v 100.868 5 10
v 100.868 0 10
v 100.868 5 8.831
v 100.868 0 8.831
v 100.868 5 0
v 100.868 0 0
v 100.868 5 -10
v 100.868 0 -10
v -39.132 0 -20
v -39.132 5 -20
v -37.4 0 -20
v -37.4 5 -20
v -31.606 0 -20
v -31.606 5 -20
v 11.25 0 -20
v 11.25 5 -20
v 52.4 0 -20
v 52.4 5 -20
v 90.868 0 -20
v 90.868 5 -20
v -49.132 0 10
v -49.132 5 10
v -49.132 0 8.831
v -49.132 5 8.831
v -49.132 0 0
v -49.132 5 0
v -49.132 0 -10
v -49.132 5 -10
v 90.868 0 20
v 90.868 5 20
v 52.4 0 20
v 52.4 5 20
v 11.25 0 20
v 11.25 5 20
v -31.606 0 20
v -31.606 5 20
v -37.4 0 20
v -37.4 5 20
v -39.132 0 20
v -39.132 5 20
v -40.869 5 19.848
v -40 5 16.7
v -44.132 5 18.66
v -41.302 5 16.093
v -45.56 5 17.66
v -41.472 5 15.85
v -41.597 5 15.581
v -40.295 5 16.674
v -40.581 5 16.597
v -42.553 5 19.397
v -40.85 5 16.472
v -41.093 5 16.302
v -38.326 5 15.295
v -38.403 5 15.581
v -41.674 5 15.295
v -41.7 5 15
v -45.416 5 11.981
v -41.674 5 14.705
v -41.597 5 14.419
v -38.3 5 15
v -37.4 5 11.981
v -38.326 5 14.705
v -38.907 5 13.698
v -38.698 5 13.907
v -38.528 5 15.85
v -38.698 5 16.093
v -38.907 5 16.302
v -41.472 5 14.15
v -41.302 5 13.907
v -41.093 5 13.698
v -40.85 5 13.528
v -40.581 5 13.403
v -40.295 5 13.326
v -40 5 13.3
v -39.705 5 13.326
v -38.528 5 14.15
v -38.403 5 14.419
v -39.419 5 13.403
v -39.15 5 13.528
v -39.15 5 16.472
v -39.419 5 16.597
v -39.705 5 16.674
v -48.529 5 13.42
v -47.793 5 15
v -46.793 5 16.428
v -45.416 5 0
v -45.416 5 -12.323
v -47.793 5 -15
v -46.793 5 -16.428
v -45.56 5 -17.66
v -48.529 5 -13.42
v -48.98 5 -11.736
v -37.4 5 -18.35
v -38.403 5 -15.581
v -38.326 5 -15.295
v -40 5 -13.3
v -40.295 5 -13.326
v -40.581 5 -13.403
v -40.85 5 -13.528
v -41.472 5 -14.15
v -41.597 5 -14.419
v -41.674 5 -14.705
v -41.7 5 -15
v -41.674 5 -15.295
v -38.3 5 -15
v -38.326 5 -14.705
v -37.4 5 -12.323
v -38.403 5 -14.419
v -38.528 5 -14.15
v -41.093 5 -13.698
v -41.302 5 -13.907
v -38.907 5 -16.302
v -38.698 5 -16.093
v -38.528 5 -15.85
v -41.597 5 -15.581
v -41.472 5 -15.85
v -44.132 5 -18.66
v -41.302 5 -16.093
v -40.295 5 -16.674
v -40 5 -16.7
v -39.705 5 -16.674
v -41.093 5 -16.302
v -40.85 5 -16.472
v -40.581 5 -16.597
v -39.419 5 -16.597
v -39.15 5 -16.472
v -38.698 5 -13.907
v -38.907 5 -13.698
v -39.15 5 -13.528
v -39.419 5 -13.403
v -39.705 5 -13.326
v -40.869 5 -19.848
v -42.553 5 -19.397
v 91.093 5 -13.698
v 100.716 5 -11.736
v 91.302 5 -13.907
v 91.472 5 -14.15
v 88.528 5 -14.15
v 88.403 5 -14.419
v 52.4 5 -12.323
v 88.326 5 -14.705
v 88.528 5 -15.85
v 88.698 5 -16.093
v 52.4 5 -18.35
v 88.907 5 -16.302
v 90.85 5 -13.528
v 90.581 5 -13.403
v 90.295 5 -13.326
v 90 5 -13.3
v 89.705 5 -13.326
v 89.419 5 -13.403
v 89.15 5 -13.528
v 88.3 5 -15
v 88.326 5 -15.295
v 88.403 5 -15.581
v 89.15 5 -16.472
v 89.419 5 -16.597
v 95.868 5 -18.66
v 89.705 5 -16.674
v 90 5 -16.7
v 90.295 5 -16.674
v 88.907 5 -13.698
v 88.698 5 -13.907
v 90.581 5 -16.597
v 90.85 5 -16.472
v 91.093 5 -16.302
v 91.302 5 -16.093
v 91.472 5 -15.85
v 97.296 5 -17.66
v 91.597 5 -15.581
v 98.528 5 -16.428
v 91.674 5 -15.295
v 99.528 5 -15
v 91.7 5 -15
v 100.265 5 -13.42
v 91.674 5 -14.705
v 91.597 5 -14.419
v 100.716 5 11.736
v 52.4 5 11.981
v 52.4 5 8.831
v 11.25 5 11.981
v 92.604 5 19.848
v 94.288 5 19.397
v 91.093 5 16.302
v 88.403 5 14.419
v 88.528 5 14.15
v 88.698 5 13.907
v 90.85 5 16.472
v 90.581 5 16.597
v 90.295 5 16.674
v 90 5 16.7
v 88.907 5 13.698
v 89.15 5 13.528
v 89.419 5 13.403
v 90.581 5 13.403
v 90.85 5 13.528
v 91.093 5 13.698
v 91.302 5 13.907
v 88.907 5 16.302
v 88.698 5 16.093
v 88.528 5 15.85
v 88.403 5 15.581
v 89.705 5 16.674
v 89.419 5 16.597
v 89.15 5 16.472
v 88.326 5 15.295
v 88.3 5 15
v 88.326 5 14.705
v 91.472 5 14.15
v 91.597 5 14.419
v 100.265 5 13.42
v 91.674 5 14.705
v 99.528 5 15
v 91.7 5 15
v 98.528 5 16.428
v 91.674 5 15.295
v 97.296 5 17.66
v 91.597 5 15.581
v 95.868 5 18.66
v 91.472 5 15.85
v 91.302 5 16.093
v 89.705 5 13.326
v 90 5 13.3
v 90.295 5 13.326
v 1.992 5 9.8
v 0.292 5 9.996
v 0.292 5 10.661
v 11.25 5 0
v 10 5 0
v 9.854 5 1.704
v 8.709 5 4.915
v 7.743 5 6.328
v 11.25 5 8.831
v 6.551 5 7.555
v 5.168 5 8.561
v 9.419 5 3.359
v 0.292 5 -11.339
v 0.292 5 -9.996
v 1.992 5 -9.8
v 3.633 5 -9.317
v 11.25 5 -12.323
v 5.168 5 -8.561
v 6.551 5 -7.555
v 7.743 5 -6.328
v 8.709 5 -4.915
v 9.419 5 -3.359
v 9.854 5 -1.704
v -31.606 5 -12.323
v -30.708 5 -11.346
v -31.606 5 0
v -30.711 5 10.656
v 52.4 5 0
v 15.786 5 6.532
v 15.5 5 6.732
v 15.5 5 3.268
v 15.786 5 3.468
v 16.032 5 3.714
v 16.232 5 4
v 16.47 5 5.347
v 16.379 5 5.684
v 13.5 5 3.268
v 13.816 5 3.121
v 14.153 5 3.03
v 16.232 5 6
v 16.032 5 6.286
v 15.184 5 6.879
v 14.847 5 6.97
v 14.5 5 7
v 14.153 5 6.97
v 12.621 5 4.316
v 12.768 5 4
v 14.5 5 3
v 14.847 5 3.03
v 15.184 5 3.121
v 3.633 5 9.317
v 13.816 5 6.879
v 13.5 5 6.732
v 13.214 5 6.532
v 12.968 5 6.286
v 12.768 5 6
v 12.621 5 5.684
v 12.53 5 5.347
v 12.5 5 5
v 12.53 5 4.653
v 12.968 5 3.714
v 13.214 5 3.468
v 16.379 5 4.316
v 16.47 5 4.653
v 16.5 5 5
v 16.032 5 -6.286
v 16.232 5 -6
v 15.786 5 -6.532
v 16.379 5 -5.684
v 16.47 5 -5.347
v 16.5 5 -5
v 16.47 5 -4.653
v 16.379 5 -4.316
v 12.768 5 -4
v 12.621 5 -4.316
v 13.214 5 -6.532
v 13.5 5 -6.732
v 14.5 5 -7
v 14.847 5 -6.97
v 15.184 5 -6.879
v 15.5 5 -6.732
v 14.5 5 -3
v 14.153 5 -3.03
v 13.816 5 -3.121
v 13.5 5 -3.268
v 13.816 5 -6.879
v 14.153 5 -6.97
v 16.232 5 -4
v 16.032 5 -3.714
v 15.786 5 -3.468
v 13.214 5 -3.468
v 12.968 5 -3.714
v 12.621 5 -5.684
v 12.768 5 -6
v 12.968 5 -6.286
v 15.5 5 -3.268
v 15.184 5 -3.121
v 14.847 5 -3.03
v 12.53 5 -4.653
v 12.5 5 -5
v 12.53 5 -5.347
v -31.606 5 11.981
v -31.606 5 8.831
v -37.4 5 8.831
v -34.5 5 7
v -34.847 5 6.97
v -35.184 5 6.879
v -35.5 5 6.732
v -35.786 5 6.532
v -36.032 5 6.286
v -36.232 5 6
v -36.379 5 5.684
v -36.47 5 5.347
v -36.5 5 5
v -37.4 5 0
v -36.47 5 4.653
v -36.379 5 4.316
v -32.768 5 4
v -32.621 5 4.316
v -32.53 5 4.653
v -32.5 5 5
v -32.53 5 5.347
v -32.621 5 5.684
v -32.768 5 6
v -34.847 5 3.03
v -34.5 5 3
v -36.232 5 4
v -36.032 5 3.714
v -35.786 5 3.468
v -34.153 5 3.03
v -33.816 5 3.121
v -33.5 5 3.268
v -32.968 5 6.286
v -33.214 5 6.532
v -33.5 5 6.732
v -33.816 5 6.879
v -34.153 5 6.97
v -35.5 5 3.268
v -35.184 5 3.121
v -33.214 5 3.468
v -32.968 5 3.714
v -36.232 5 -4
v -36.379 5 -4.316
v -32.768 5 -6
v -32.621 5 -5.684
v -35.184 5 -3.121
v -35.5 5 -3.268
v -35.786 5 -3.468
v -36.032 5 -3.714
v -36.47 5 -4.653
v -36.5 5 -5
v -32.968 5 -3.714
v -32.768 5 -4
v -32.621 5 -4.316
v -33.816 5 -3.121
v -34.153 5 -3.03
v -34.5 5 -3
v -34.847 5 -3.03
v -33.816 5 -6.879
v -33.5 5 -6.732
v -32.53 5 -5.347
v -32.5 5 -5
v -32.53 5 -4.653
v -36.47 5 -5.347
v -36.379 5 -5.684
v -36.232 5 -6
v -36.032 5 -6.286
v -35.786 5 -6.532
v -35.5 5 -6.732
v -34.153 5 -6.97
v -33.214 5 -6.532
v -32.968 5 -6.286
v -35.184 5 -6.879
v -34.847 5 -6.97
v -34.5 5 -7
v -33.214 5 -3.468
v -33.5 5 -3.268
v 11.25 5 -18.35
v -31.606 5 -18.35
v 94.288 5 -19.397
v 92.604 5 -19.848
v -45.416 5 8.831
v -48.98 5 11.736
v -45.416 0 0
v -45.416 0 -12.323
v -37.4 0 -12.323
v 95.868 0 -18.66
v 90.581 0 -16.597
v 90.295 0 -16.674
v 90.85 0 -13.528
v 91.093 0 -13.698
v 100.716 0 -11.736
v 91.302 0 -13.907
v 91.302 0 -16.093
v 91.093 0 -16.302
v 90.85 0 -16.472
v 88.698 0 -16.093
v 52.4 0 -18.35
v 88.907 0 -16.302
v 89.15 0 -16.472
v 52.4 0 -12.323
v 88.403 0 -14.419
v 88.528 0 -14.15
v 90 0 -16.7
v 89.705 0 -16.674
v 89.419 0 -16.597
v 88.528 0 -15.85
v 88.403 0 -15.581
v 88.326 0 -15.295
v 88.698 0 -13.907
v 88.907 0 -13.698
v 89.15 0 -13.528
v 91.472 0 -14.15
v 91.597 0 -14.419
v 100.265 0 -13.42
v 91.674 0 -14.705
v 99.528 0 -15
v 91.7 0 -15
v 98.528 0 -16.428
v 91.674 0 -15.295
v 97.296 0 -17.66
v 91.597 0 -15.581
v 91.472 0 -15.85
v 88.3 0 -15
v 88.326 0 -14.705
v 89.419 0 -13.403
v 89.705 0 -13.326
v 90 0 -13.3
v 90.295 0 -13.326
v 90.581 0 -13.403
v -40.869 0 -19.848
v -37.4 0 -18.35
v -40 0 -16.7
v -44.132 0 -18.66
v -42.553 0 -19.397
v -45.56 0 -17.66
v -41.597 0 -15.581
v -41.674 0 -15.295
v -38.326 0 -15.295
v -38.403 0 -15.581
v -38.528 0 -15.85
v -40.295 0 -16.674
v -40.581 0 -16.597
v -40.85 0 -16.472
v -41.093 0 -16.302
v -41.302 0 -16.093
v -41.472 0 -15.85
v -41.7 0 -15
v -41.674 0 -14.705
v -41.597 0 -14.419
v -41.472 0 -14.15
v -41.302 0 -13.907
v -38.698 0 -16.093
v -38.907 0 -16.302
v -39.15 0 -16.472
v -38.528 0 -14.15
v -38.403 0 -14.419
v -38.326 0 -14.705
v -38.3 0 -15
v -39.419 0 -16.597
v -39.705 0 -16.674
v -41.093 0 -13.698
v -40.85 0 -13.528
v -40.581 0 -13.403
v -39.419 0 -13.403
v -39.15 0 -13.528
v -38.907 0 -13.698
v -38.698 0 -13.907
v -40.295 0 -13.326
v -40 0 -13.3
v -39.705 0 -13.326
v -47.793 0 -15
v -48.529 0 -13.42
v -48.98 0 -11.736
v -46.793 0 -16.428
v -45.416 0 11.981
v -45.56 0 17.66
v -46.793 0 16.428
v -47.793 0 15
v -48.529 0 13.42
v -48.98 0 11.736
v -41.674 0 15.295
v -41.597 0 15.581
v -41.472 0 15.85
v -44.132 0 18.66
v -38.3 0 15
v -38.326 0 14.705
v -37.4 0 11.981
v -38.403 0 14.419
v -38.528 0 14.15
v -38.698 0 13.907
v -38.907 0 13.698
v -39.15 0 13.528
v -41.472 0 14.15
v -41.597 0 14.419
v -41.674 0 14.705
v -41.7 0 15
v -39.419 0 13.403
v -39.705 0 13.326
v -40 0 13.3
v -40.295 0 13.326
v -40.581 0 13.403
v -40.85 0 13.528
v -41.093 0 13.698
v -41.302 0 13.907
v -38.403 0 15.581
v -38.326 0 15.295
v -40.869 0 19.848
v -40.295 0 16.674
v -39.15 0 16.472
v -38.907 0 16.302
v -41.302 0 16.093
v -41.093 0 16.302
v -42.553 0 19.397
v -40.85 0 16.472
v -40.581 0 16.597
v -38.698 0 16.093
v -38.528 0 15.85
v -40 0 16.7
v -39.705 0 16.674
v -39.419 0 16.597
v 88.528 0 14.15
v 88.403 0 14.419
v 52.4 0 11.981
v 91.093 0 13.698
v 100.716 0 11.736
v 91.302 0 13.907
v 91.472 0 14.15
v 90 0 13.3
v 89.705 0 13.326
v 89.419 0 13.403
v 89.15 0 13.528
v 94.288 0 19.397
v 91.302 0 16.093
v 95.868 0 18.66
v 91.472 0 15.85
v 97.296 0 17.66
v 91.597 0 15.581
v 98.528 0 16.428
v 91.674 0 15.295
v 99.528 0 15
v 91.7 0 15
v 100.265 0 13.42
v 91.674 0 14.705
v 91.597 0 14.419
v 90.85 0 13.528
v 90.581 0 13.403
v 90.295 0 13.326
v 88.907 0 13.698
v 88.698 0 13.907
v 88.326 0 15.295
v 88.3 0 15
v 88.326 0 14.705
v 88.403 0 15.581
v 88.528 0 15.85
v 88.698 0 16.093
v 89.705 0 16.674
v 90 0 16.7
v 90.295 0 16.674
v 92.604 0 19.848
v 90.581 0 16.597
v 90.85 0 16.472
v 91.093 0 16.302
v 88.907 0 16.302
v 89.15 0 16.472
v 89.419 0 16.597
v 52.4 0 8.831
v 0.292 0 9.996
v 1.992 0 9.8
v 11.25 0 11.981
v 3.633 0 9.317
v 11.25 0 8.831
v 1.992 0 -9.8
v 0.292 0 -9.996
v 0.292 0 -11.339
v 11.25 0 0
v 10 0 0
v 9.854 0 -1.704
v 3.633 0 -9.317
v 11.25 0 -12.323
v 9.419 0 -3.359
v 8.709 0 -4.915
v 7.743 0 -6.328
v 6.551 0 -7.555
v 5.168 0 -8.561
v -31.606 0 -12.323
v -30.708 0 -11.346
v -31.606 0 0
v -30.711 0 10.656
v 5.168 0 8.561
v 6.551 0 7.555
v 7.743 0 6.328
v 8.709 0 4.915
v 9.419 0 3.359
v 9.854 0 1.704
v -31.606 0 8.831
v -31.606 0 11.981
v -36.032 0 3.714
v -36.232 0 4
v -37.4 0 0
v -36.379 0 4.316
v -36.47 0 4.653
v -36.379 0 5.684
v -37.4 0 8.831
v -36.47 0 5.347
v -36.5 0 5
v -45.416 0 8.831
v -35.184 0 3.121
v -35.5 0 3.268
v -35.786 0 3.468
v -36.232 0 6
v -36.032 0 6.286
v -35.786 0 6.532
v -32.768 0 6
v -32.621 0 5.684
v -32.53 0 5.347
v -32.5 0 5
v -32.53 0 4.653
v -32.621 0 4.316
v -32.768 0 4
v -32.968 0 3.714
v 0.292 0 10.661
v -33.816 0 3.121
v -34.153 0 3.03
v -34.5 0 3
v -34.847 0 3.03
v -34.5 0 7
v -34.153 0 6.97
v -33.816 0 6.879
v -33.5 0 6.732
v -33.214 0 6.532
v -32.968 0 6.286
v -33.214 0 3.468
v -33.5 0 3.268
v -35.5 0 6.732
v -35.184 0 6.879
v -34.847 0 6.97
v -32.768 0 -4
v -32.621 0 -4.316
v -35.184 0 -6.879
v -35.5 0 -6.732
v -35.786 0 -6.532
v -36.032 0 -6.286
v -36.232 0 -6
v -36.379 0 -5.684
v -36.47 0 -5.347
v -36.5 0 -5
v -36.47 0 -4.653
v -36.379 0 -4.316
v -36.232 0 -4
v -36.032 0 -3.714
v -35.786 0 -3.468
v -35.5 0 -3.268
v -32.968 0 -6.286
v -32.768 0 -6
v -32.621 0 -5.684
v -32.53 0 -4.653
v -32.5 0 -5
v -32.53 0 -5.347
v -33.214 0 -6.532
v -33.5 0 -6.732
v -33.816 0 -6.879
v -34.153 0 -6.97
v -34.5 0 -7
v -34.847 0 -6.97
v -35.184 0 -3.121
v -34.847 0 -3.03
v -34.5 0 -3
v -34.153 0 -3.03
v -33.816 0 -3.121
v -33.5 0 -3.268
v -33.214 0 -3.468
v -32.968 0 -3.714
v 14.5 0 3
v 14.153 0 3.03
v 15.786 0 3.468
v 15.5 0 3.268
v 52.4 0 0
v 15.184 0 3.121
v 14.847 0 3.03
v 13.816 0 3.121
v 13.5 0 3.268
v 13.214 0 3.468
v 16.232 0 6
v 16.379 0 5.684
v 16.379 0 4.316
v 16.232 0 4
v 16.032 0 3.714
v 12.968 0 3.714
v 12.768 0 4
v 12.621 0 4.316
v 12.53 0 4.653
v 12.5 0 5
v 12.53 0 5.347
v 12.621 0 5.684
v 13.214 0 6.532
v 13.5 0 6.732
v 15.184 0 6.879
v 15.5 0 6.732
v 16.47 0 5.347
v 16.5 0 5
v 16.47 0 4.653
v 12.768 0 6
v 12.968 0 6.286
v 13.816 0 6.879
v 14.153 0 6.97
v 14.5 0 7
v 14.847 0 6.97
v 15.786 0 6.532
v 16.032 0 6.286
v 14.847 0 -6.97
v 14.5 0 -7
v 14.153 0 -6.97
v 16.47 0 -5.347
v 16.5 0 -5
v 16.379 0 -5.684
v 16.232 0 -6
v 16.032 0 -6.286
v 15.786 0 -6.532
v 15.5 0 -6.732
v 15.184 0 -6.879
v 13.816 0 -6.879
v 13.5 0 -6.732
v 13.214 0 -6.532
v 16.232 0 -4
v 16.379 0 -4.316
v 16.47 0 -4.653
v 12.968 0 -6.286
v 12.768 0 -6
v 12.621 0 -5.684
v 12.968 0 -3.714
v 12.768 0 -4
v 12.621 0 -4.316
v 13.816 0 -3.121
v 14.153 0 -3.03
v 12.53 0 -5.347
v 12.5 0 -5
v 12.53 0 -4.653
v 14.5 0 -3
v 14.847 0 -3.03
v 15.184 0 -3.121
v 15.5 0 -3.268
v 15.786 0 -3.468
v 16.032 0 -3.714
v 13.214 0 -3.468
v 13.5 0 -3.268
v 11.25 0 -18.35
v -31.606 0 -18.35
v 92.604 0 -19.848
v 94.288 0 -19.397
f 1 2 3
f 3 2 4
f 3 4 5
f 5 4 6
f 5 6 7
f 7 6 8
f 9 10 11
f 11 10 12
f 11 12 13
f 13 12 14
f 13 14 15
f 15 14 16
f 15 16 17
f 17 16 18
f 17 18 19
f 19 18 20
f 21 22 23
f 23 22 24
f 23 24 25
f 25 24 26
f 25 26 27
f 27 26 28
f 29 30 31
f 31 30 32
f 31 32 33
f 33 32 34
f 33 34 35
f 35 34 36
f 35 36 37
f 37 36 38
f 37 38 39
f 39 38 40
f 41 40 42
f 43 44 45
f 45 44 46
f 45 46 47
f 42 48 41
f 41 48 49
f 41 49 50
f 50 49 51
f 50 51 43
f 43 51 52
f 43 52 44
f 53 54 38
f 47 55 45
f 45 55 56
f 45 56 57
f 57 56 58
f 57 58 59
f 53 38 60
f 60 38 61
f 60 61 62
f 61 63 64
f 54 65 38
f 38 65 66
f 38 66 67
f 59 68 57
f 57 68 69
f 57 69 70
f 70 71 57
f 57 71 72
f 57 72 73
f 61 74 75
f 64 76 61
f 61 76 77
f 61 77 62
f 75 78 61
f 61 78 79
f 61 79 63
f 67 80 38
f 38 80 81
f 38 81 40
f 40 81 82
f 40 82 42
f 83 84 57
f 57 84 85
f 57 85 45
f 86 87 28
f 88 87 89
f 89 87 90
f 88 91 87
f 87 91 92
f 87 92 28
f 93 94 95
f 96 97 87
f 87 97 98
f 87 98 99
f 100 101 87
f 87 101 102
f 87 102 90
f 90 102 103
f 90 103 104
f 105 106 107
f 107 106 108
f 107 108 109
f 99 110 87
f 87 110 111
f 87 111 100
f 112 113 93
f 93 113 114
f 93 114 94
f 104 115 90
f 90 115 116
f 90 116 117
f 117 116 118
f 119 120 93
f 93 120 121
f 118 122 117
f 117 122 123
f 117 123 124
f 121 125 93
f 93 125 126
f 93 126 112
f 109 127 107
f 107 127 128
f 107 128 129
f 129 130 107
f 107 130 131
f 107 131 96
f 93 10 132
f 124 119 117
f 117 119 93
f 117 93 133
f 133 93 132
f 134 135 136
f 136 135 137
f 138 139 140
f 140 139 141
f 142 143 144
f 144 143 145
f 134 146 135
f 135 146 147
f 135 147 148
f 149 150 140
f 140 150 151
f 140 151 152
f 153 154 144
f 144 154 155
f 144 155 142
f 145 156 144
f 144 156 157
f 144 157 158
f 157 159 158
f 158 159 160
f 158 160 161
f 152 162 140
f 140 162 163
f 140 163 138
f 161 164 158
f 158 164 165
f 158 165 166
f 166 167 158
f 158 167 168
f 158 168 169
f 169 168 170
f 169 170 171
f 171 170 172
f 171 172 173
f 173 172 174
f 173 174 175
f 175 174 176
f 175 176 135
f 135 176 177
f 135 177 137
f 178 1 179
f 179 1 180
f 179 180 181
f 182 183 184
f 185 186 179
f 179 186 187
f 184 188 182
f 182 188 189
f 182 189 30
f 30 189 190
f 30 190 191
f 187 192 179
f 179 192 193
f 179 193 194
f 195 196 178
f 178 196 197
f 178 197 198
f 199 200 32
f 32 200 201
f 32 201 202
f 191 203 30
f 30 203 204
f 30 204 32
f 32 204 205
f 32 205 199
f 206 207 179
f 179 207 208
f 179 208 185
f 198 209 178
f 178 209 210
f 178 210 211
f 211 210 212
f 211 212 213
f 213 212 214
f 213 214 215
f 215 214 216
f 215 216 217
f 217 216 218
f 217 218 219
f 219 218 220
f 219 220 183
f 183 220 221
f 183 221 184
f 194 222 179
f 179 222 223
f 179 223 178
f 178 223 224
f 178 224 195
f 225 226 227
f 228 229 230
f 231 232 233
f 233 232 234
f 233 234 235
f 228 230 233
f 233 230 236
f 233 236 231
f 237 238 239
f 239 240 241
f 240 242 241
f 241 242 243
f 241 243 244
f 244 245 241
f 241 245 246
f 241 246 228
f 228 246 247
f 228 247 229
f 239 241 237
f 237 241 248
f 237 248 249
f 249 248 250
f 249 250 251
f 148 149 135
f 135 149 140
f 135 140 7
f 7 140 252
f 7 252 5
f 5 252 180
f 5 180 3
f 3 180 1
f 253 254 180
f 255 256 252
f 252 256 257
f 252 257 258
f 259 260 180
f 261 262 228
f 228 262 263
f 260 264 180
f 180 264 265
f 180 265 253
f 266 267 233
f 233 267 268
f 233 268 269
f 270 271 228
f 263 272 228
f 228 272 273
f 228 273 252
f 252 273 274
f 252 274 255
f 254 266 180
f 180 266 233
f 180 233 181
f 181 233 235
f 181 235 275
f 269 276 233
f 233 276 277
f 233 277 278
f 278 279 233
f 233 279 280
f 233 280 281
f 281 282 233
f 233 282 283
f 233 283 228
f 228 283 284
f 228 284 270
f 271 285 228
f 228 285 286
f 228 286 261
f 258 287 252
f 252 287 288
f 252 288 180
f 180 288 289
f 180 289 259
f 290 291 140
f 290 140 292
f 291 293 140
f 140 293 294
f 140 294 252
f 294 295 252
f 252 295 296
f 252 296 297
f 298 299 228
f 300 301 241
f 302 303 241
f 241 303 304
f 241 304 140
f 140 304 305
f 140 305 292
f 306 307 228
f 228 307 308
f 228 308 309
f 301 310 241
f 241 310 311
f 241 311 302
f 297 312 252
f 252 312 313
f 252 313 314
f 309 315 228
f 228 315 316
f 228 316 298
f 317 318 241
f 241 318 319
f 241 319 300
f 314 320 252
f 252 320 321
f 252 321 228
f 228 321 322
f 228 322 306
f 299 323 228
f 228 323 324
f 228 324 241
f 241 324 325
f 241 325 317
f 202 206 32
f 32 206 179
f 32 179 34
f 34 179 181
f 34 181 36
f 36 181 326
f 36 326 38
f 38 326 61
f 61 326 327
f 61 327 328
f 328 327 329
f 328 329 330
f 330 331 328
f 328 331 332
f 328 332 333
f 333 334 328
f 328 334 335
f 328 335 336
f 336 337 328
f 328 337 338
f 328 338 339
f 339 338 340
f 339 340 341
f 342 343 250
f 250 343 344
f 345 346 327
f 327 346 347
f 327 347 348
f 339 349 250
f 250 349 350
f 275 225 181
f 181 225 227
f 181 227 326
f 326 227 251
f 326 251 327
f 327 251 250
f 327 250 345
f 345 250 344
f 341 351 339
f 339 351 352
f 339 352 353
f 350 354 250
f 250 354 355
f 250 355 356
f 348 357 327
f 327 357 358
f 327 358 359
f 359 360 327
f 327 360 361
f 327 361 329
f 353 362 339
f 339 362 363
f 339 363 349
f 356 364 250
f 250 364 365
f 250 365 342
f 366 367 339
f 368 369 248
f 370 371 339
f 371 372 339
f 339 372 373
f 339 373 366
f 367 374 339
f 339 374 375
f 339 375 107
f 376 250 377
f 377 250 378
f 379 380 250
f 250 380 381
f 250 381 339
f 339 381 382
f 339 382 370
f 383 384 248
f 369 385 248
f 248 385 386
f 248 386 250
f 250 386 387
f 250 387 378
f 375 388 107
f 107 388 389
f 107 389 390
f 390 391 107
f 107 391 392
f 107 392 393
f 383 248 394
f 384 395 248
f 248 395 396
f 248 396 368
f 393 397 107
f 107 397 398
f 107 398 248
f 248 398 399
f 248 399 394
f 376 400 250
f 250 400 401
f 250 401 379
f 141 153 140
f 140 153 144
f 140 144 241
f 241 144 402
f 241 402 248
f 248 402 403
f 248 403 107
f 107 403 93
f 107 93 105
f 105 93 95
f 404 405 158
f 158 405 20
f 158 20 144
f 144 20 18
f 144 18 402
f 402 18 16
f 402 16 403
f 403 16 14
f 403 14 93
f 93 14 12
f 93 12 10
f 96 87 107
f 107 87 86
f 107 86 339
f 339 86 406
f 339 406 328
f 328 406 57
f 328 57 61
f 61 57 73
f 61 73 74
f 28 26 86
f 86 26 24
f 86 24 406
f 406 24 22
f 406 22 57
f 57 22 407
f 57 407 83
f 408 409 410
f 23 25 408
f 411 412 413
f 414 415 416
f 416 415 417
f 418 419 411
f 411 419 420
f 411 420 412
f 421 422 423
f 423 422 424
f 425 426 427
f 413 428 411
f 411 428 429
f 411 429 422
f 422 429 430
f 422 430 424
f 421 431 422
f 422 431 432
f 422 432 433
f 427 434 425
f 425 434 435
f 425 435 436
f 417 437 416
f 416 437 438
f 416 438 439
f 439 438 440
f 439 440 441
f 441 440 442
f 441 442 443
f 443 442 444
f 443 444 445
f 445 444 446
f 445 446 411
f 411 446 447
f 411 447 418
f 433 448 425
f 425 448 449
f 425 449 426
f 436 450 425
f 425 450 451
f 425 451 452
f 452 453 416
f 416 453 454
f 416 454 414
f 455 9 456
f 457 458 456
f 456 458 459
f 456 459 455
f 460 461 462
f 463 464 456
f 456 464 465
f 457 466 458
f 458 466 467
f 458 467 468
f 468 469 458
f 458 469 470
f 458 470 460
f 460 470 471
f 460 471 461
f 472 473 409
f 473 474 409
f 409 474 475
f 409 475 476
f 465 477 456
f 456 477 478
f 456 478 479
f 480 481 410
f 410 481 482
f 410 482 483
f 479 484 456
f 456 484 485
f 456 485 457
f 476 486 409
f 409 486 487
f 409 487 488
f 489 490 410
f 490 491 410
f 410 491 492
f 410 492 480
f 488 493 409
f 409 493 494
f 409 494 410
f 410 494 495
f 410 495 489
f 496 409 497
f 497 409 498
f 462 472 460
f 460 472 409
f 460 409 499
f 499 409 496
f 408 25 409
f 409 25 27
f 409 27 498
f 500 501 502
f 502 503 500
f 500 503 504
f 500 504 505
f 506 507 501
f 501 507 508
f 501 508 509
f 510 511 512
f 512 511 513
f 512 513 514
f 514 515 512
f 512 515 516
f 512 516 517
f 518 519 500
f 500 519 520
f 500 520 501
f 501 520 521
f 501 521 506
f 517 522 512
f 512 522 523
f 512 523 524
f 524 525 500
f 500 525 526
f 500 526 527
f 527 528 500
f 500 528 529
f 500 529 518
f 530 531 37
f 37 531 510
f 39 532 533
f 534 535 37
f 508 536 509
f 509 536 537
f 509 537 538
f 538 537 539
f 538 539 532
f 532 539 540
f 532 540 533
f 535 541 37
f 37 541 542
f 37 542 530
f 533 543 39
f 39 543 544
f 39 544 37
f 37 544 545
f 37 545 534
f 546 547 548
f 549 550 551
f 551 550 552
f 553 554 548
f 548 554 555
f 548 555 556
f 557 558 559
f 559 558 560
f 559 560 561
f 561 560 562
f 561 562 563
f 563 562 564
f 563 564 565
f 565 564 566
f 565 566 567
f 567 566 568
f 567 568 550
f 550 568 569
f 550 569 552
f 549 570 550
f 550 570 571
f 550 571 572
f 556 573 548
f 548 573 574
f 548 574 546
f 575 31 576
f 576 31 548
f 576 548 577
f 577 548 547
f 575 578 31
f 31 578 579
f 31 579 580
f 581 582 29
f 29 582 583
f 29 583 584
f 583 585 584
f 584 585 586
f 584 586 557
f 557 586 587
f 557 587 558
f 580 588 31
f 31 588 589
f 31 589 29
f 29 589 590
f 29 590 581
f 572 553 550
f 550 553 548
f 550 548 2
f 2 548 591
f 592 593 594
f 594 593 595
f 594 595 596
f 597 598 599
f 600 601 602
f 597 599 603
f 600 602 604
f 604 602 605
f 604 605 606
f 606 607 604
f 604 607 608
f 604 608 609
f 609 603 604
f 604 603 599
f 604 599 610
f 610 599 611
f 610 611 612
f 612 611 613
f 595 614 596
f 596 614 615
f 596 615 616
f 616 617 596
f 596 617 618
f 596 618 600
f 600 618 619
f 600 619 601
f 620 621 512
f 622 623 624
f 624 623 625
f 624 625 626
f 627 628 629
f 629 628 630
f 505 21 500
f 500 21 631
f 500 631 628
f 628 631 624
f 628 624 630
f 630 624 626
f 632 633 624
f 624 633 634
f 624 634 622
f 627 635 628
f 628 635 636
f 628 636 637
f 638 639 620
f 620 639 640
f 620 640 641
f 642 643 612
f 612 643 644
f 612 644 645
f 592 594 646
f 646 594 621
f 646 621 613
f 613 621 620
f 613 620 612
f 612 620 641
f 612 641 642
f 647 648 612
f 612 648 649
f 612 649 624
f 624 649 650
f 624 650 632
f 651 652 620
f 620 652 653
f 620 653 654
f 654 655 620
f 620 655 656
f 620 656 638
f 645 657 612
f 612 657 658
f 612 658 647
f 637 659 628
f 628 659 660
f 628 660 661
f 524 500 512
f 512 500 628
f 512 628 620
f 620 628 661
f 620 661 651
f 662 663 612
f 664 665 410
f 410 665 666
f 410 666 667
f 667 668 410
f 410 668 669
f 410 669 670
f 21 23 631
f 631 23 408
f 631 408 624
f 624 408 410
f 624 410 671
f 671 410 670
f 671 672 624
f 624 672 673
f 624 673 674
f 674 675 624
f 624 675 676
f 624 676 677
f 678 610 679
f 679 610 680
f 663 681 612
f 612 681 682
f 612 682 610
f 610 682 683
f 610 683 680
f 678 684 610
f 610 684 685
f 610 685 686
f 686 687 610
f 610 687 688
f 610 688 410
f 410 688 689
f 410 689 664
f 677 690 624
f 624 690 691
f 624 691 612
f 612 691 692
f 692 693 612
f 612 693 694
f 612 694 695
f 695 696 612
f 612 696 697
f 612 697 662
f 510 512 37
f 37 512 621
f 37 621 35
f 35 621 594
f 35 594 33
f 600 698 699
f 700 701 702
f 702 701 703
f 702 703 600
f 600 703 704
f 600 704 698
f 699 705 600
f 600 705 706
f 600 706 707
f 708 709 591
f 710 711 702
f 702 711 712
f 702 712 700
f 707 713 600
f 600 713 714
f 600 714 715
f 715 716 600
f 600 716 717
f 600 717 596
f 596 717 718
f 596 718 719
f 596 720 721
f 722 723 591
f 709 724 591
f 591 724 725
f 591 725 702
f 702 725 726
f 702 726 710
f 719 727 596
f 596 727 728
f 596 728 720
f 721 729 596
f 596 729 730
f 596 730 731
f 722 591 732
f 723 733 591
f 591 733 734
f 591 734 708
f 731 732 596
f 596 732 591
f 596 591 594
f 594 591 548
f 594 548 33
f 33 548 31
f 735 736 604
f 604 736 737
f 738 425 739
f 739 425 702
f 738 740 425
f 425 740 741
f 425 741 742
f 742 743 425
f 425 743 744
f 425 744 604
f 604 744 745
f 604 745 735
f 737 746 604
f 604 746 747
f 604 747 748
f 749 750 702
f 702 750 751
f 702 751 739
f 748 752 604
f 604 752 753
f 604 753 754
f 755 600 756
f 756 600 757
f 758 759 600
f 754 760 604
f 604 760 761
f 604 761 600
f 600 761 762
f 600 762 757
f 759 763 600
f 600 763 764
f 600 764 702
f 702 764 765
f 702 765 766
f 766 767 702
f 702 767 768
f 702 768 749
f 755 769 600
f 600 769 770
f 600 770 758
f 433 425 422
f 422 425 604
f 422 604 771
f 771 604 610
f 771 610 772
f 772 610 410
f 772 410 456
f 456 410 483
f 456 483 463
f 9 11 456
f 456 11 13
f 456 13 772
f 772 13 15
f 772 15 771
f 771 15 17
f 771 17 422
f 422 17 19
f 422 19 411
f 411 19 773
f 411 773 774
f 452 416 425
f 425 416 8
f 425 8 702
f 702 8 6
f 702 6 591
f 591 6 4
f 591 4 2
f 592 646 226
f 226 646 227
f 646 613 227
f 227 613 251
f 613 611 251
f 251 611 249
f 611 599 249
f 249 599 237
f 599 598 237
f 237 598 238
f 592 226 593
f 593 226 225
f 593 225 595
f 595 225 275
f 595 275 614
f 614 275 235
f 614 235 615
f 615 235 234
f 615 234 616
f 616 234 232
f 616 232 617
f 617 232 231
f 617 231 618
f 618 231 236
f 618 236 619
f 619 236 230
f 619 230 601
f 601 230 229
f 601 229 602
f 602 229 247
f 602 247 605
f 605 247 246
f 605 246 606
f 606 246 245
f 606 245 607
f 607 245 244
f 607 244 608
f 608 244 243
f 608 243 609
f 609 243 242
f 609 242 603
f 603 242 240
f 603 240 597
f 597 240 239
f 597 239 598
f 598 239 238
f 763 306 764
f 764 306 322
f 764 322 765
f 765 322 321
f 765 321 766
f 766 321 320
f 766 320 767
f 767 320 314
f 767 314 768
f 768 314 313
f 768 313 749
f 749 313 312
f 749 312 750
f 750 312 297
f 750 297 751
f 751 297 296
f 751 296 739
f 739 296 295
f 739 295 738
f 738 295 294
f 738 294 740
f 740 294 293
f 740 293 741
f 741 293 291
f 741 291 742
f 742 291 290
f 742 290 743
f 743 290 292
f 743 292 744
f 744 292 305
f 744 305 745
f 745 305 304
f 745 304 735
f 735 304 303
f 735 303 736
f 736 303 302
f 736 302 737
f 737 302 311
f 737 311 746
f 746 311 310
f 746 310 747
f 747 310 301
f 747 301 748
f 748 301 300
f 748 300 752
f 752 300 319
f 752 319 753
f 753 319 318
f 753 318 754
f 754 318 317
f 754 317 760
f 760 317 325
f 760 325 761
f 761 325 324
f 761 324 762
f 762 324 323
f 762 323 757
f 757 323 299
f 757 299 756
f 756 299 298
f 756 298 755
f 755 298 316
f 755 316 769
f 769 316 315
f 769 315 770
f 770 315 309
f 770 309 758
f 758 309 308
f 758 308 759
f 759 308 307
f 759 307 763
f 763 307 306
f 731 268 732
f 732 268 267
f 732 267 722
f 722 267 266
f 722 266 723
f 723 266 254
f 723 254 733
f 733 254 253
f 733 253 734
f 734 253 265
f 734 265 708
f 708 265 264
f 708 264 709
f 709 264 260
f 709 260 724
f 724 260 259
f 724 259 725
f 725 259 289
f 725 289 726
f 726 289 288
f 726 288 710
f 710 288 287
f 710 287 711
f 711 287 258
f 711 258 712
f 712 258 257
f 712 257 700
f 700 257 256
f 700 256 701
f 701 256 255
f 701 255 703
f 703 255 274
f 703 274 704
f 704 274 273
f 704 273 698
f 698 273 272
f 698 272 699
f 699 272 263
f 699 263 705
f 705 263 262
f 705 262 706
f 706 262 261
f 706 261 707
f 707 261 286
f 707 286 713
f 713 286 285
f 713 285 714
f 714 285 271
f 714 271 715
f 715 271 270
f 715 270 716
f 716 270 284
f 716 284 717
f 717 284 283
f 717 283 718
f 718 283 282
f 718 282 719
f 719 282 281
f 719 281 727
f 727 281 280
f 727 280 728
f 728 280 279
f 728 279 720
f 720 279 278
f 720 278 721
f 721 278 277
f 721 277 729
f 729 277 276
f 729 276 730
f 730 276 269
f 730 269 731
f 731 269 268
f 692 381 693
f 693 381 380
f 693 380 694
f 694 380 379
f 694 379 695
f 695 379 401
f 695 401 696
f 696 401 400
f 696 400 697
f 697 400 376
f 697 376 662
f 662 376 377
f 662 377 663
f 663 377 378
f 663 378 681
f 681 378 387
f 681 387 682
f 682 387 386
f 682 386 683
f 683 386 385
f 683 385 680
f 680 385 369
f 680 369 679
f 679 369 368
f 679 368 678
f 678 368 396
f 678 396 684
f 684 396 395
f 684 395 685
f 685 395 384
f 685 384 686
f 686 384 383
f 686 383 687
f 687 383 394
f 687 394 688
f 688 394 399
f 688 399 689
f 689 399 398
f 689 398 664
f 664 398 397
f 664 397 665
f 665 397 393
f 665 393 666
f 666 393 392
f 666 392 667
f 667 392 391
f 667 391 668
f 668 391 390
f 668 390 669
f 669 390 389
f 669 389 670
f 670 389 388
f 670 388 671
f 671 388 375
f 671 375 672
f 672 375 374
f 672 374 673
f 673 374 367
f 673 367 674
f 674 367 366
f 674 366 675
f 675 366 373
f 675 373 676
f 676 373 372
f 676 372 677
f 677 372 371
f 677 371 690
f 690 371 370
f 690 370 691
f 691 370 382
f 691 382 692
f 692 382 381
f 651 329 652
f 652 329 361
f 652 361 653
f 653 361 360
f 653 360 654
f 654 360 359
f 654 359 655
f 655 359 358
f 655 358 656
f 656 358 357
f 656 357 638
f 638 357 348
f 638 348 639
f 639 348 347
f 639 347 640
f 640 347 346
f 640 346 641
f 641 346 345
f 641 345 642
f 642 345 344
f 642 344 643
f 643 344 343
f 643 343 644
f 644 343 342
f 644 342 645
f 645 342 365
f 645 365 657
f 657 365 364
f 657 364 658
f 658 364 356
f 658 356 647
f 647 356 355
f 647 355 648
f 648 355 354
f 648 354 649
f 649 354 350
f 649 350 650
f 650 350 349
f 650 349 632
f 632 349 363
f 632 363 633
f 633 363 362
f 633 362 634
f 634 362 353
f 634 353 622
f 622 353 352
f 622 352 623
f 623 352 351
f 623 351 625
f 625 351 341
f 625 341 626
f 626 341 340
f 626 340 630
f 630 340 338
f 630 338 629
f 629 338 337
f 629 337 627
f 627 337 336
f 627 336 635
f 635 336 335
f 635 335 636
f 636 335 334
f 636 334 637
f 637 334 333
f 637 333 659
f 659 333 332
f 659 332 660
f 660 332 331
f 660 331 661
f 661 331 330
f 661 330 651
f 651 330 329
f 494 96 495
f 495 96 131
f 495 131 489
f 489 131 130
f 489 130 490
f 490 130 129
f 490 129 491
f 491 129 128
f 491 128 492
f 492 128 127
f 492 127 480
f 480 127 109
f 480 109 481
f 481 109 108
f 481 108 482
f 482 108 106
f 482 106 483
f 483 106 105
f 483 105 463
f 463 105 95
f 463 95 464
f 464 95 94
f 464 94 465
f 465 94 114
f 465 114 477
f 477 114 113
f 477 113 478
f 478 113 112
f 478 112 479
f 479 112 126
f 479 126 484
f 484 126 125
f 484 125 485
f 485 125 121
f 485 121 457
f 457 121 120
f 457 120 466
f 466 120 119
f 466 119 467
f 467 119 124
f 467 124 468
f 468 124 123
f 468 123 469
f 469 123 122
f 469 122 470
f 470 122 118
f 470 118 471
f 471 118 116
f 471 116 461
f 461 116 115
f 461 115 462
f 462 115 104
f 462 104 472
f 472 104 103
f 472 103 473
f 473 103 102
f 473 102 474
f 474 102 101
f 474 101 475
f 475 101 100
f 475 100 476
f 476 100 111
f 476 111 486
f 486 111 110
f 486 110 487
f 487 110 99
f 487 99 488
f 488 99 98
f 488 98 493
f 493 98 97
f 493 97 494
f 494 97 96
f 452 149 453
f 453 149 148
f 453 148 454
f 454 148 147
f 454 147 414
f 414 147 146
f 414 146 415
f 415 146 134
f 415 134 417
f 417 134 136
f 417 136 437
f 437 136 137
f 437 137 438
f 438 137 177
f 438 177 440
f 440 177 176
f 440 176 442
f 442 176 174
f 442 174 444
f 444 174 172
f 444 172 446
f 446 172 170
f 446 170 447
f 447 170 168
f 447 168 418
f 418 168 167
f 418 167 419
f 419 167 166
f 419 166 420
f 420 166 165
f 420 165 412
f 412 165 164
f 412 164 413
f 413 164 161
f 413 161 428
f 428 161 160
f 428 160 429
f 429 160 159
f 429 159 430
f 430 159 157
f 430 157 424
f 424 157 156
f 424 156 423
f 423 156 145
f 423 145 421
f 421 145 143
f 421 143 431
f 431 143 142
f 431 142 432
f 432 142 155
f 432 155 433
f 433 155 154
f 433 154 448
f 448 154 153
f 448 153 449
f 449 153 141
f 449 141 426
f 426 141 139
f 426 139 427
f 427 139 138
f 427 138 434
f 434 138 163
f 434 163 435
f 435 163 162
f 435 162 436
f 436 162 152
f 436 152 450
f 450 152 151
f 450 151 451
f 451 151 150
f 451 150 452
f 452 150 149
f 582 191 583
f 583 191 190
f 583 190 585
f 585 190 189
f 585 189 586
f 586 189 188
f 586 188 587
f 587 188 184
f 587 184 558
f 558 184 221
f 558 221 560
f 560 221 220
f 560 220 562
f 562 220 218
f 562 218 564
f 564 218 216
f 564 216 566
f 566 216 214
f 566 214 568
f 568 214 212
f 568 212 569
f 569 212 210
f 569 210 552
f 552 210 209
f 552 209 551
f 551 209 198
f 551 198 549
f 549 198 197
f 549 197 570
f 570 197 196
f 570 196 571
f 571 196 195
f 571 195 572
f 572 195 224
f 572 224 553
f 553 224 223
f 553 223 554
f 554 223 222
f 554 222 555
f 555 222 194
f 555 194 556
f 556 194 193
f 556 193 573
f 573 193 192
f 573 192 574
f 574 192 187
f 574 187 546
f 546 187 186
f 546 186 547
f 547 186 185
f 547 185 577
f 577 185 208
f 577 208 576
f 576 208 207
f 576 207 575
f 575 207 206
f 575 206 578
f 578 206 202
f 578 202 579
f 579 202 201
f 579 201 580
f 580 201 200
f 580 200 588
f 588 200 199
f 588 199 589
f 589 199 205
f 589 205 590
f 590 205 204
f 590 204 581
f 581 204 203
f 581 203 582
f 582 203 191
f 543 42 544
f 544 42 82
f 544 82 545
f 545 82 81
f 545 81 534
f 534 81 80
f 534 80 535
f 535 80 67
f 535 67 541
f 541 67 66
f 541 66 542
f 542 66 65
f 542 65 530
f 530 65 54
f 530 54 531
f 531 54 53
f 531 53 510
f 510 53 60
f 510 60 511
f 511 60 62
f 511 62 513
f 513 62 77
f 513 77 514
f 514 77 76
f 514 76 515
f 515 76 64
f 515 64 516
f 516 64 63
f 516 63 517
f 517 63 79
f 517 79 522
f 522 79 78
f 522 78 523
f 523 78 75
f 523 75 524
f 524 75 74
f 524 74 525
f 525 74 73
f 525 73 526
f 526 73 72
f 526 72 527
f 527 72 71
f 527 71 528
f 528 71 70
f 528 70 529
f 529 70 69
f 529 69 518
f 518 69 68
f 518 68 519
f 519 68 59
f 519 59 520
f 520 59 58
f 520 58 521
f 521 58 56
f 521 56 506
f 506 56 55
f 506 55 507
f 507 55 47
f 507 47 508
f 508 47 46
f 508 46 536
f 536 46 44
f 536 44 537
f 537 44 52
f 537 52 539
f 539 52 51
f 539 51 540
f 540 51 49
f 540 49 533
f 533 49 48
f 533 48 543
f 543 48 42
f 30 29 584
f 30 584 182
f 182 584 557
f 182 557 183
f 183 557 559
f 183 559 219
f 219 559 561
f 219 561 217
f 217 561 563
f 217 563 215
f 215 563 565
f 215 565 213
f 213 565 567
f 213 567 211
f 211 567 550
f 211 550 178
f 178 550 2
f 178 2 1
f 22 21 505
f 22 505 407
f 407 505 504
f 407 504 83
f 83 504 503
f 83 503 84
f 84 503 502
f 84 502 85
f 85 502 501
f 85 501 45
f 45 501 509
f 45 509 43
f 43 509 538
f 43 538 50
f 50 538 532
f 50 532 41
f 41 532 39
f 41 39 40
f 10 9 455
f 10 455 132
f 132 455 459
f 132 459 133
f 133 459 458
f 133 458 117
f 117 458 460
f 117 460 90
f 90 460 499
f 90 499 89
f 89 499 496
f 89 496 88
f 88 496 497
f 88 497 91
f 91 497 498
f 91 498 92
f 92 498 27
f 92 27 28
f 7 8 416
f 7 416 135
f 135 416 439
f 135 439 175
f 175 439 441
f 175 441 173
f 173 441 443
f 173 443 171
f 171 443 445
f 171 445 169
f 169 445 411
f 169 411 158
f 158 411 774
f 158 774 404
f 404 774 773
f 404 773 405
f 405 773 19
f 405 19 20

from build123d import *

# Parameters (mm, degrees)
SKETCH9_W           = 150
SKETCH9_H           = 40
BOSS_EXTRUDE5_DEPTH = 5
SKETCH10_R          = 10
SKETCH10_R_2        = 8
SKETCH10_R_3        = 2
CUT_EXTRUDE5_DEPTH  = 103.952823134
SKETCH11_R          = 1.7
CUT_EXTRUDE6_DEPTH  = 103.952823134
FILLET1_R           = 10


with BuildPart() as part:
    # Sketch9 → Boss-Extrude5 (new body)
    with BuildSketch(Plane(origin=(0, 0, 0), x_dir=(1, 0, 0), z_dir=(0, 1, 0))):
        with Locations((25.867654831, 0)):
            Rectangle(SKETCH9_W, SKETCH9_H)
    extrude(amount=BOSS_EXTRUDE5_DEPTH)

    # Sketch10 → Cut-Extrude5 (cut, through all)
    # profile 1 of 12: a face of its own
    with BuildSketch(Plane(origin=(0, 5, 0), x_dir=(1, 0, 0), z_dir=(0, 1, 0))):
        Circle(SKETCH10_R)
    # profile 2 of 12: a face of its own
    with BuildSketch(Plane(origin=(0, 5, 0), x_dir=(1, 0, 0), z_dir=(0, 1, 0))):
        Polygon((0.292318991, -10.661038996), (0.292318991, 11.338961004), (-30.707681009, 11.345685511), (-30.711010445, -10.656347446), align=None)
        with Locations((-13, 0)):
            Circle(SKETCH10_R_2, mode=Mode.SUBTRACT)
    # profile 3 of 12: a face of its own
    with BuildSketch(Plane(origin=(0, 5, 0), x_dir=(1, 0, 0), z_dir=(0, 1, 0))):
        with BuildLine():
            ThreePointArc((10, 0), (7.173673742, 6.966950914), (0.292318991, 9.995726567))
            Line((0.292318991, 9.995726567), (0.292318991, -9.995726567))
            ThreePointArc((0.292318991, -9.995726567), (7.173673742, -6.966950914), (10, 0))
        make_face()
    # profile 4 of 12: a face of its own
    with BuildSketch(Plane(origin=(0, 5, 0), x_dir=(1, 0, 0), z_dir=(0, 1, 0))):
        with BuildLine():
            Line((0.292318991, -9.995726567), (0.292318991, 9.995726567))
            ThreePointArc((0.292318991, 9.995726567), (-4.255176628, 9.049501194), (-7.884615385, 6.150840612))
            ThreePointArc((-7.884615385, 6.150840612), (-5.756966211, 3.396831102), (-5, 0))
            ThreePointArc((-5, 0), (-5.756966211, -3.396831102), (-7.884615385, -6.150840612))
            ThreePointArc((-7.884615385, -6.150840612), (-4.255176628, -9.049501194), (0.292318991, -9.995726567))
        make_face()
    # profile 5 of 12: a face of its own
    with BuildSketch(Plane(origin=(0, 5, 0), x_dir=(1, 0, 0), z_dir=(0, 1, 0))):
        Circle(SKETCH10_R)
    # profile 6 of 12: a face of its own
    with BuildSketch(Plane(origin=(0, 5, 0), x_dir=(1, 0, 0), z_dir=(0, 1, 0))):
        with Locations((-13, 0)):
            Circle(SKETCH10_R_2)
    # profile 7 of 12: a face of its own
    with BuildSketch(Plane(origin=(0, 5, 0), x_dir=(1, 0, 0), z_dir=(0, 1, 0))):
        Circle(SKETCH10_R)
    # profile 8 of 12: a face of its own
    with BuildSketch(Plane(origin=(0, 5, 0), x_dir=(1, 0, 0), z_dir=(0, 1, 0))):
        with Locations((-13, 0)):
            Circle(SKETCH10_R_2)
    # profile 9 of 12: a face of its own
    with BuildSketch(Plane(origin=(0, 5, 0), x_dir=(1, 0, 0), z_dir=(0, 1, 0))):
        with Locations(Location((14.5, 5, 0), (0, 0, 270))):
            Circle(SKETCH10_R_3)
    # profile 10 of 12: a face of its own
    with BuildSketch(Plane(origin=(0, 5, 0), x_dir=(1, 0, 0), z_dir=(0, 1, 0))):
        with Locations(Location((14.5, -5, 0), (0, 0, 270))):
            Circle(SKETCH10_R_3)
    # profile 11 of 12: a face of its own
    with BuildSketch(Plane(origin=(0, 5, 0), x_dir=(1, 0, 0), z_dir=(0, 1, 0))):
        with Locations(Location((-34.5, 5, 0), (0, 0, 270))):
            Circle(SKETCH10_R_3)
    # profile 12 of 12: a face of its own
    with BuildSketch(Plane(origin=(0, 5, 0), x_dir=(1, 0, 0), z_dir=(0, 1, 0))):
        with Locations(Location((-34.5, -5, 0), (0, 0, 270))):
            Circle(SKETCH10_R_3)
    extrude(amount=-CUT_EXTRUDE5_DEPTH, mode=Mode.SUBTRACT)

    # Sketch11 → Cut-Extrude6 (cut, through all)
    with BuildSketch(Plane(origin=(0, 5, 0), x_dir=(1, 0, 0), z_dir=(0, 1, 0))):
        with Locations(Location((-40, 15, 0), (0, 0, 270))):
            Circle(SKETCH11_R)
        with Locations(Location((90, 15, 0), (0, 0, 270))):
            Circle(SKETCH11_R)
        with Locations(Location((90, -15, 0), (0, 0, 270))):
            Circle(SKETCH11_R)
        with Locations(Location((-40, -15, 0), (0, 0, 270))):
            Circle(SKETCH11_R)
    extrude(amount=-CUT_EXTRUDE6_DEPTH, mode=Mode.SUBTRACT)

    # Fillet1
    fillet1_edges = [part.edges().sort_by_distance(p)[0] for p in [
        (100.867654831, 2.5, 20),
        (-49.132345169, 2.5, 20),
        (-49.132345169, 2.5, -20),
        (100.867654831, 2.5, -20),
    ]]
    fillet(fillet1_edges, radius=FILLET1_R)


solid = part.part
